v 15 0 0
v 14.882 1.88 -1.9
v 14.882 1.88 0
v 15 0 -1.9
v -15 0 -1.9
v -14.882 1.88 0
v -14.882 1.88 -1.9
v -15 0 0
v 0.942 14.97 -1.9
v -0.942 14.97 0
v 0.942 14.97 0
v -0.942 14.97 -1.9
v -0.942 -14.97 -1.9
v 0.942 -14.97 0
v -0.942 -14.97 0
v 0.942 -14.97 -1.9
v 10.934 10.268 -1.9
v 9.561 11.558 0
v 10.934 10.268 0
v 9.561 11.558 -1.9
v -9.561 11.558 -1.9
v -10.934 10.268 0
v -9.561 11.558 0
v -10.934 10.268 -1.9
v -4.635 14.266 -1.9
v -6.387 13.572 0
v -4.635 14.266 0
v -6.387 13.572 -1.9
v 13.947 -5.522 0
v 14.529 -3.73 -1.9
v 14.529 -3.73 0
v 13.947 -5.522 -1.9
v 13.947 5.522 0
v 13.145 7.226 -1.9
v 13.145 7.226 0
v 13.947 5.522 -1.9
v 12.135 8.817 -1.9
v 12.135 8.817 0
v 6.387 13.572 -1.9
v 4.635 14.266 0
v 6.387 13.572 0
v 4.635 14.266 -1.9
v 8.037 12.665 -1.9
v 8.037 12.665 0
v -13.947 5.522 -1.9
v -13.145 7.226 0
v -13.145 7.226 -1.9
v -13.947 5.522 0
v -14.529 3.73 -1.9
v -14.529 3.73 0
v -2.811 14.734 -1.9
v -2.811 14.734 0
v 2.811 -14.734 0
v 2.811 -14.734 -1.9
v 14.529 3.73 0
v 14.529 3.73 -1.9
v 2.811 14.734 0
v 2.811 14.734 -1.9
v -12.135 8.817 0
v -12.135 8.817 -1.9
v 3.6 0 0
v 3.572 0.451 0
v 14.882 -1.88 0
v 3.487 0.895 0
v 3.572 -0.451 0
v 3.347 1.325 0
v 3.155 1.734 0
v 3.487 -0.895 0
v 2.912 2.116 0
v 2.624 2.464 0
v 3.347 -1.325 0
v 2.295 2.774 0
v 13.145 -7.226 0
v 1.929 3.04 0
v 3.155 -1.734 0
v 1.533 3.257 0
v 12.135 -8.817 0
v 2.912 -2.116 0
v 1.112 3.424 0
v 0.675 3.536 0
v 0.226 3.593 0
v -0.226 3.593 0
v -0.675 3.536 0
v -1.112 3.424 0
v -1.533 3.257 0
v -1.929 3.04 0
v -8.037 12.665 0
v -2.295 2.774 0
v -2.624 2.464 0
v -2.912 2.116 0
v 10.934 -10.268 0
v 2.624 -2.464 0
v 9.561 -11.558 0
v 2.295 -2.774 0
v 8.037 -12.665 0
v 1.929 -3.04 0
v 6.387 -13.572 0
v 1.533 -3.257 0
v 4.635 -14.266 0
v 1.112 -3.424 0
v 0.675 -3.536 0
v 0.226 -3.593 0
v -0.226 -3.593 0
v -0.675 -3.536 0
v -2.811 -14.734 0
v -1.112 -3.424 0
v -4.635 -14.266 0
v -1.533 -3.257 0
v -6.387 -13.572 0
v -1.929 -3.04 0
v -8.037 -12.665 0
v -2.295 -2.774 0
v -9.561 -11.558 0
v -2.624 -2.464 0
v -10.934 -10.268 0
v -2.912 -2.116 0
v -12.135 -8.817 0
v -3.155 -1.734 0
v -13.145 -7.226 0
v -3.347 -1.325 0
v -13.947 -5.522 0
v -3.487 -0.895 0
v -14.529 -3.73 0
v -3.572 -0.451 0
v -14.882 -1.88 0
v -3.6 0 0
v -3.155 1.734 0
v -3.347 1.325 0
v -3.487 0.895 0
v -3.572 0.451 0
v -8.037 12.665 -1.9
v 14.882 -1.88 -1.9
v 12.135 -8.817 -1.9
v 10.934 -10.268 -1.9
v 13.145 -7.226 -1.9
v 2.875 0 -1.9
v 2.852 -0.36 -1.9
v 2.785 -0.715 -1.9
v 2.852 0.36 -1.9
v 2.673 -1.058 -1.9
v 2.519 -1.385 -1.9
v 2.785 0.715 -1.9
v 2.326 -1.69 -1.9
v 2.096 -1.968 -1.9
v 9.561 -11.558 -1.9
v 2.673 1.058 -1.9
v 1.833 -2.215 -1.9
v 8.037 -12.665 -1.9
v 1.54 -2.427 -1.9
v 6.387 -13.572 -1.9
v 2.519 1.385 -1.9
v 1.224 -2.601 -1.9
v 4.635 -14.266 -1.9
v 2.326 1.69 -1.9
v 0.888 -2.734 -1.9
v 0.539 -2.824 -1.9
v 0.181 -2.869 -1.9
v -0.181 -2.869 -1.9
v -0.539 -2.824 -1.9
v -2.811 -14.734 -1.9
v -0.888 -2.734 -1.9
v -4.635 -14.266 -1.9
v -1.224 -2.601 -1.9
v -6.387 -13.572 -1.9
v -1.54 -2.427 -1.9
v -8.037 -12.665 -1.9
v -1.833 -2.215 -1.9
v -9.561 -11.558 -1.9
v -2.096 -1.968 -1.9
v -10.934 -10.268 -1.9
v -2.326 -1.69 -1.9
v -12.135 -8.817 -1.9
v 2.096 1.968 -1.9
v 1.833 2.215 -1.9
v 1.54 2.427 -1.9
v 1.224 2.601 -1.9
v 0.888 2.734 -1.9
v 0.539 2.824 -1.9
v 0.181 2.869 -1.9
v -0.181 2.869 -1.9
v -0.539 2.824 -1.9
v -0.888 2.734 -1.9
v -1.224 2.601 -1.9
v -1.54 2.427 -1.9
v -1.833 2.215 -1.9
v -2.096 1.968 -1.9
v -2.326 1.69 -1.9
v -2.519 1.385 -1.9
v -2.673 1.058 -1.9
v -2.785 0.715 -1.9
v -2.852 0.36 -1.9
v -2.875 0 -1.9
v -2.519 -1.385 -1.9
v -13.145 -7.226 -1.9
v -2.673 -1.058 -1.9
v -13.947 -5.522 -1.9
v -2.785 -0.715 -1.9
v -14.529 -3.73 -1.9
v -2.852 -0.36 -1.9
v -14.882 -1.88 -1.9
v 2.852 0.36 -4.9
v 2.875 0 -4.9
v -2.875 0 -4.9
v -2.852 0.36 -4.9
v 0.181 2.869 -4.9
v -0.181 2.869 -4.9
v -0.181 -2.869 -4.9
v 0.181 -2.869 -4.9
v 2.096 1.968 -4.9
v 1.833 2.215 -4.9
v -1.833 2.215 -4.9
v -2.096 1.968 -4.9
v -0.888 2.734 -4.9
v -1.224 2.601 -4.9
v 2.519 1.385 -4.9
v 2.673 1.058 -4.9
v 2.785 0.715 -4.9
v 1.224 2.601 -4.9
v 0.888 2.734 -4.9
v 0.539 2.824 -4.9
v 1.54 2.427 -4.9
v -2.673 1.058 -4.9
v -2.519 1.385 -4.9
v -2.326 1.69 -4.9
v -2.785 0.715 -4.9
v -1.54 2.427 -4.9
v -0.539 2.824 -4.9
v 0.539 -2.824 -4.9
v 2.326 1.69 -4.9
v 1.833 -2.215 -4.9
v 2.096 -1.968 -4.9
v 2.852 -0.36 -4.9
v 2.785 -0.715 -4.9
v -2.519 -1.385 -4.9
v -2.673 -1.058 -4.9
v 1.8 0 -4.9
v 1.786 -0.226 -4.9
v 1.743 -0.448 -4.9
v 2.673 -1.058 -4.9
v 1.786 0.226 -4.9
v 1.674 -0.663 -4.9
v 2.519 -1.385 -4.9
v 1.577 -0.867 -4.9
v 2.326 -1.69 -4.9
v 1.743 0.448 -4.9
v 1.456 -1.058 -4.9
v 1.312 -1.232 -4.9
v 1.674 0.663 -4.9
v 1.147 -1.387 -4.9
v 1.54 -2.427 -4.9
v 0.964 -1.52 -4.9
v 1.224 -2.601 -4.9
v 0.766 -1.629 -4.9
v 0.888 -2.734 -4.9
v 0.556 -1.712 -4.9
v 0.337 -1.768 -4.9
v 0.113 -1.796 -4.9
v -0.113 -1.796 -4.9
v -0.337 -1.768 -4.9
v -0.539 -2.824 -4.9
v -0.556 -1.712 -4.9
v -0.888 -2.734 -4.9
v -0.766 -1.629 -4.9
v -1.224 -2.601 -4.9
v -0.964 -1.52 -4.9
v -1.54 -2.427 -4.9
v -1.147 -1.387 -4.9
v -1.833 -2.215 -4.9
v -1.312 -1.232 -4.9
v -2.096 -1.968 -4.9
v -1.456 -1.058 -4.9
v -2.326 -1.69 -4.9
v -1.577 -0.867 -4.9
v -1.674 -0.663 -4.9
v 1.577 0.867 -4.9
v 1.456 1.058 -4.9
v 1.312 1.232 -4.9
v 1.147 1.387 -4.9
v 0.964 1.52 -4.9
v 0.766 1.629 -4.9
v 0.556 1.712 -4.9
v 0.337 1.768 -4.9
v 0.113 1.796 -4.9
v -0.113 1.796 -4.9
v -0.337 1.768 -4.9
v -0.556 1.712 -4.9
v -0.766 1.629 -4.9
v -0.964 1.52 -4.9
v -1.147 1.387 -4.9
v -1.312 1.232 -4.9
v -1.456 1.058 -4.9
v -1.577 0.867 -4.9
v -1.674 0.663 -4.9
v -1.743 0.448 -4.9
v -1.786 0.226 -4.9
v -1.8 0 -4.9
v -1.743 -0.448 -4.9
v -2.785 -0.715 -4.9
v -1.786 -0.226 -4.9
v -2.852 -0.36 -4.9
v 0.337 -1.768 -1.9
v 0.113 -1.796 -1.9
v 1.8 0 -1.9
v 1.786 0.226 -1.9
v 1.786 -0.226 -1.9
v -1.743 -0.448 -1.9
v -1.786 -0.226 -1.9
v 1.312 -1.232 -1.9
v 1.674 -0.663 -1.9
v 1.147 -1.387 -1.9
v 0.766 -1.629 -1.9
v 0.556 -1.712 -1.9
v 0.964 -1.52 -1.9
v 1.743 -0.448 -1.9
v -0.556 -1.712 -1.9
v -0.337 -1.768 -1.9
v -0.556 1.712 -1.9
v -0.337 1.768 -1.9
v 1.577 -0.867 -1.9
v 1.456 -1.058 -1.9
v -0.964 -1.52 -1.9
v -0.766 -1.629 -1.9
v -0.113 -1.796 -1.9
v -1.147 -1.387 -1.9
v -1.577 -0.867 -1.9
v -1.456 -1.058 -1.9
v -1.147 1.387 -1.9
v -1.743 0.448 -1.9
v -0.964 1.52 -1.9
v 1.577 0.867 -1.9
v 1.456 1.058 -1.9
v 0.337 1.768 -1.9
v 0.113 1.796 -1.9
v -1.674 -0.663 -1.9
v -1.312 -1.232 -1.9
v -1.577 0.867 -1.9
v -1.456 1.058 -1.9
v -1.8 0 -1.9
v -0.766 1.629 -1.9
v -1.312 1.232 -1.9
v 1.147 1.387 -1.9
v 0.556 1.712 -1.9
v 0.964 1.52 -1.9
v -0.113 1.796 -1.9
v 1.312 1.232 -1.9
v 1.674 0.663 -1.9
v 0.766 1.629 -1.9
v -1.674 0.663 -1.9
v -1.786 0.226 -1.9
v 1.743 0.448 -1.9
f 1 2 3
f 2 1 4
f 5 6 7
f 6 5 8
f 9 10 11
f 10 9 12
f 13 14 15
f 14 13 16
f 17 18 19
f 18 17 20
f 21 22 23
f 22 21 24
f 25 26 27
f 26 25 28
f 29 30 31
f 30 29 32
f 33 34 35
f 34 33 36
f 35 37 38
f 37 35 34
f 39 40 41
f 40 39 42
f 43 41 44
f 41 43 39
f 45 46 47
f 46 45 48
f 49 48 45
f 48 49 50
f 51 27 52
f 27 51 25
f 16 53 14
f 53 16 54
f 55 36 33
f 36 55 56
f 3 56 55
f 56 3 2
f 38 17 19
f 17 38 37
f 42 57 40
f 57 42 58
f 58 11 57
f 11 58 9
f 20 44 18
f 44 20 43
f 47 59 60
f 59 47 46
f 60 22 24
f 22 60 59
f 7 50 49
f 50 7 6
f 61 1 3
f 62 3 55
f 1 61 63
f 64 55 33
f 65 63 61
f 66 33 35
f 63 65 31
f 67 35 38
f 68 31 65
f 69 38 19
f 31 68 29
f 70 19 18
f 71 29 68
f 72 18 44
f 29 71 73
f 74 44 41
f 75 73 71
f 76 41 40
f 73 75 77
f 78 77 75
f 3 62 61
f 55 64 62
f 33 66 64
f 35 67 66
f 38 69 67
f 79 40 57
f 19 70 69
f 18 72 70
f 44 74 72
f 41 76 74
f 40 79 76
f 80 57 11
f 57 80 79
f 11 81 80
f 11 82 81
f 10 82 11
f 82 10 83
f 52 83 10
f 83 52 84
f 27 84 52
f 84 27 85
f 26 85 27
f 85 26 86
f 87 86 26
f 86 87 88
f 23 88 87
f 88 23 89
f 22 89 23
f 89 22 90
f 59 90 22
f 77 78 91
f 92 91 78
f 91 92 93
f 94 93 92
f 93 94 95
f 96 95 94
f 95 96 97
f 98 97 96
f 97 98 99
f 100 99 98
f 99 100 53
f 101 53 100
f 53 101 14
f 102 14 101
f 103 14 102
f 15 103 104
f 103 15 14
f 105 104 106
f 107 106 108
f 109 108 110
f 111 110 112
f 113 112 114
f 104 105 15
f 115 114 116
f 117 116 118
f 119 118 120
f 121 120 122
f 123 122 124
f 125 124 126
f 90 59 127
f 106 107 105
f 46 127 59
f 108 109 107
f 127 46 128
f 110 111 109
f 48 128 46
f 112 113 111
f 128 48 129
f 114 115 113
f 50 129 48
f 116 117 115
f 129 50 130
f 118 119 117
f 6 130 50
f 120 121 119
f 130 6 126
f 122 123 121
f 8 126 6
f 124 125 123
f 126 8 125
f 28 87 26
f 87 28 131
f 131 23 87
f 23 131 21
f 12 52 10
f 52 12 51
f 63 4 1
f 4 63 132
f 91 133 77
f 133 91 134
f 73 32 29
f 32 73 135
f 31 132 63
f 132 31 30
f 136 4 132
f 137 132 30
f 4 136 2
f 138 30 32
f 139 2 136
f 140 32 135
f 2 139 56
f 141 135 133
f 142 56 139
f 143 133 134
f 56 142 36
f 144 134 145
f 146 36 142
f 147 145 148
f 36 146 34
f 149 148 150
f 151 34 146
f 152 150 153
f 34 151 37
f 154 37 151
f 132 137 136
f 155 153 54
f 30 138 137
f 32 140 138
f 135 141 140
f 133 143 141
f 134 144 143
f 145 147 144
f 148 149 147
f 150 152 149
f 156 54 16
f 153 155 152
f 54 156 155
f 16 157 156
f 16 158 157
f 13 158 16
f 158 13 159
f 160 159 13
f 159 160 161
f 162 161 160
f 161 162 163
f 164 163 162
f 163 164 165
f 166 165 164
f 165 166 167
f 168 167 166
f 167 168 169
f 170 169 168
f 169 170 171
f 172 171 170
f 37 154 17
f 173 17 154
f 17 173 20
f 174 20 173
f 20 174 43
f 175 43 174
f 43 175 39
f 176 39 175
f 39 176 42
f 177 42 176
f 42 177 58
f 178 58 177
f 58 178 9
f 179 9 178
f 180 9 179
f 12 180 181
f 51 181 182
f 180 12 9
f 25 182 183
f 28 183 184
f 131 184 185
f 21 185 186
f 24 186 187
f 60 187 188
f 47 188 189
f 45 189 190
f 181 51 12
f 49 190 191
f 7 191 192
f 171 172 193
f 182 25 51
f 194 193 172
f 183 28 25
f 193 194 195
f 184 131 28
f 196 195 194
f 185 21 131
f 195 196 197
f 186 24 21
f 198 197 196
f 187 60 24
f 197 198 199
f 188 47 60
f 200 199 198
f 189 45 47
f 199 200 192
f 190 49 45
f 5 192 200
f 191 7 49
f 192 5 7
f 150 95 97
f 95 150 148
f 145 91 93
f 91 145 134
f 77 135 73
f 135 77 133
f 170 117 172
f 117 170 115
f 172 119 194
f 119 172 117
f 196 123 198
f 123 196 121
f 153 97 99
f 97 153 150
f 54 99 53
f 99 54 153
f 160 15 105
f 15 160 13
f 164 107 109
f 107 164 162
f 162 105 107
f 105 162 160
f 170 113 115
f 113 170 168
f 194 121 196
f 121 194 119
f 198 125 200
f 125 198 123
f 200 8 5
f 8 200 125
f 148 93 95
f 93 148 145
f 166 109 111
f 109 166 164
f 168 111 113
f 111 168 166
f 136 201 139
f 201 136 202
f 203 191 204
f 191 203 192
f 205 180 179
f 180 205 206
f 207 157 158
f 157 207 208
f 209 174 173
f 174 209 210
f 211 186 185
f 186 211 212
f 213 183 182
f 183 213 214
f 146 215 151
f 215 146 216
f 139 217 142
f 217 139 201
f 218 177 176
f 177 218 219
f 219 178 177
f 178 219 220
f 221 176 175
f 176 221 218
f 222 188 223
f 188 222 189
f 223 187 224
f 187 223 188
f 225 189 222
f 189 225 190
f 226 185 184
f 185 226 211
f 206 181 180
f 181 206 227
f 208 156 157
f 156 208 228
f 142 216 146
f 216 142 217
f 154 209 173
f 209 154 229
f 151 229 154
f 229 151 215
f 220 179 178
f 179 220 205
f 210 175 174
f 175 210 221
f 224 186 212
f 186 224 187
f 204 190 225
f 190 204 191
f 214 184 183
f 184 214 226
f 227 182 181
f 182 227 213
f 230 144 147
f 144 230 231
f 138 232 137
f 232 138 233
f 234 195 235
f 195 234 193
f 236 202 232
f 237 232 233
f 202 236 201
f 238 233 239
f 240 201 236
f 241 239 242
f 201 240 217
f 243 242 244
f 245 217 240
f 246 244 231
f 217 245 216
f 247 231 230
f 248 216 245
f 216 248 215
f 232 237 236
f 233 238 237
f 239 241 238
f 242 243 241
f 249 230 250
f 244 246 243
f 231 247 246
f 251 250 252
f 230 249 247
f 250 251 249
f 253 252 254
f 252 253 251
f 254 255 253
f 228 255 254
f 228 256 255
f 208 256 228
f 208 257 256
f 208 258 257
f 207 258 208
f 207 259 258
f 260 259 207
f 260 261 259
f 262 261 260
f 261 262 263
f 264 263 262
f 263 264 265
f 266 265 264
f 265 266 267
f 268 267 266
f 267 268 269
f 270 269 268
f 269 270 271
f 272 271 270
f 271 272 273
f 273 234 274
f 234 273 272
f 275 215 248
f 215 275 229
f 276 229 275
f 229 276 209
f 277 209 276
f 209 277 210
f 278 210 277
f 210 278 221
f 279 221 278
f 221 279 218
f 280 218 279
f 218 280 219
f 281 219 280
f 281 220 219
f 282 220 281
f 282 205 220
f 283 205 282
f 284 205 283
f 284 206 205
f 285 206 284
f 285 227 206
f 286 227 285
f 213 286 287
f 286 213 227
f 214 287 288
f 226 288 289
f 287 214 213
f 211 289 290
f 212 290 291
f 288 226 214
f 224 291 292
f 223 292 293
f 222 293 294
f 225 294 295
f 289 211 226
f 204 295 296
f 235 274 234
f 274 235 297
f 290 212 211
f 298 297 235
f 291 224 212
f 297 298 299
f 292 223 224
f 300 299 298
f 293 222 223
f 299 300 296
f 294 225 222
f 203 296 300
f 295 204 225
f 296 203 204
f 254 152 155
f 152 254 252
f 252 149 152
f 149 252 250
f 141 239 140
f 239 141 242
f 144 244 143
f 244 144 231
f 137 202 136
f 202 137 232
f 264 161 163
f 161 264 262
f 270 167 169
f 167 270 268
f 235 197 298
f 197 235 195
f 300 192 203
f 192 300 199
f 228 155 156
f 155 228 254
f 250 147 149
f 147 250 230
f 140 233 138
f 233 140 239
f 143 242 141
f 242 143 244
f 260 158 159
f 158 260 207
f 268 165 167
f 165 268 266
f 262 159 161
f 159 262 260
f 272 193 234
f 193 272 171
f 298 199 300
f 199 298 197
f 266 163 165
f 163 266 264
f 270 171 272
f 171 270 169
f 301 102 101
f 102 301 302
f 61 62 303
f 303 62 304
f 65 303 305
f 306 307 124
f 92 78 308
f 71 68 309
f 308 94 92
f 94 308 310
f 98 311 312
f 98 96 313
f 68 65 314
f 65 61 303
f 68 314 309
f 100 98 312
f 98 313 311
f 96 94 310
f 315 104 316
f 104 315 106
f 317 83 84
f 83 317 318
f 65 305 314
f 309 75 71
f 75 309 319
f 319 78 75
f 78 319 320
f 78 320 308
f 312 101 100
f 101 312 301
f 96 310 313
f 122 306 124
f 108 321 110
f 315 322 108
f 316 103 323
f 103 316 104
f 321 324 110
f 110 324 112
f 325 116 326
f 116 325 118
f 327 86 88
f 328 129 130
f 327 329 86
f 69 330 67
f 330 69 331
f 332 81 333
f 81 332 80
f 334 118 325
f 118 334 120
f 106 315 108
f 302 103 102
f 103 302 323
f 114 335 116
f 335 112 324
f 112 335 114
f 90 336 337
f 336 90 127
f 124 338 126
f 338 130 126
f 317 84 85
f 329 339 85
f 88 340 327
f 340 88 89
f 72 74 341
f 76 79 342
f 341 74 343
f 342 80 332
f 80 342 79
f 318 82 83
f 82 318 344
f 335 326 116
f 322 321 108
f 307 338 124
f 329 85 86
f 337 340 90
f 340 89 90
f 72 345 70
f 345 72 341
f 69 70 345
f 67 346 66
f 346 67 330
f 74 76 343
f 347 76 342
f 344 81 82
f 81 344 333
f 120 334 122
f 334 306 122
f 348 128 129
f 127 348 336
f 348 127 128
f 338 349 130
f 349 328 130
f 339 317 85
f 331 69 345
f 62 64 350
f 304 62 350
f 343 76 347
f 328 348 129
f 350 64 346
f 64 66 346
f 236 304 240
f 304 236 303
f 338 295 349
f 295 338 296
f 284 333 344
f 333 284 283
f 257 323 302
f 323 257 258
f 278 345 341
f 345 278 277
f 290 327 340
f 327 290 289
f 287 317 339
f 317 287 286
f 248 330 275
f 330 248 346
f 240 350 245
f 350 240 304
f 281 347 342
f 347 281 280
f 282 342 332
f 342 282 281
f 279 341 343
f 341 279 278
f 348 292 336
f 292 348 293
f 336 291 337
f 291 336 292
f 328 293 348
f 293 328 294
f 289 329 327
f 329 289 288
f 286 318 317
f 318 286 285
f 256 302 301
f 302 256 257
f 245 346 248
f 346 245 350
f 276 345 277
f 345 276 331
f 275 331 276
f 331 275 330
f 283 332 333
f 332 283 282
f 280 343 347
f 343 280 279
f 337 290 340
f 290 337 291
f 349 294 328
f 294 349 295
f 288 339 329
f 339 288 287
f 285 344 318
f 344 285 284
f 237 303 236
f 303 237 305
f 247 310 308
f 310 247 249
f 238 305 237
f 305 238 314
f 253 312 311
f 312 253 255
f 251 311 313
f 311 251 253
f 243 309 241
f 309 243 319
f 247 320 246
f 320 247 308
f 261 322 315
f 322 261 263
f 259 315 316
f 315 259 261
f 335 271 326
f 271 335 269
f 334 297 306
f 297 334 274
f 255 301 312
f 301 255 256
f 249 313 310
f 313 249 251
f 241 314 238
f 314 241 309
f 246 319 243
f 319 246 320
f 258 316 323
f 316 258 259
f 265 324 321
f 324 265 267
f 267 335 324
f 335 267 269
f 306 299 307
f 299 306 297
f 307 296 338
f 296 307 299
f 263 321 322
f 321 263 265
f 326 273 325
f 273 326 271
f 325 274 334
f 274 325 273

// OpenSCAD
$fn = 50;


difference() {
	union() {
		translate(v = [0, 0, -1.9000000000]) {
			cylinder(h = 1.9000000000, r = 15.0000000000);
		}
		#translate(v = [0, 0, -4.9000000000]) {
			cylinder(h = 4.9000000000, r = 2.8750000000);
		}
	}
	union() {
		translate(v = [0, 0, 0]) {
			rotate(a = [0, 0, 0]) {
				difference() {
					union() {
						translate(v = [0, 0, -4.9000000000]) {
							cylinder(h = 4.9000000000, r = 1.5000000000);
						}
						translate(v = [0, 0, -1.9000000000]) {
							cylinder(h = 1.9000000000, r1 = 1.8000000000, r2 = 3.6000000000);
						}
						translate(v = [0, 0, -4.9000000000]) {
							cylinder(h = 4.9000000000, r = 1.8000000000);
						}
						translate(v = [0, 0, -4.9000000000]) {
							cylinder(h = 4.9000000000, r = 1.5000000000);
						}
					}
					union();
				}
			}
		}
	}
}
